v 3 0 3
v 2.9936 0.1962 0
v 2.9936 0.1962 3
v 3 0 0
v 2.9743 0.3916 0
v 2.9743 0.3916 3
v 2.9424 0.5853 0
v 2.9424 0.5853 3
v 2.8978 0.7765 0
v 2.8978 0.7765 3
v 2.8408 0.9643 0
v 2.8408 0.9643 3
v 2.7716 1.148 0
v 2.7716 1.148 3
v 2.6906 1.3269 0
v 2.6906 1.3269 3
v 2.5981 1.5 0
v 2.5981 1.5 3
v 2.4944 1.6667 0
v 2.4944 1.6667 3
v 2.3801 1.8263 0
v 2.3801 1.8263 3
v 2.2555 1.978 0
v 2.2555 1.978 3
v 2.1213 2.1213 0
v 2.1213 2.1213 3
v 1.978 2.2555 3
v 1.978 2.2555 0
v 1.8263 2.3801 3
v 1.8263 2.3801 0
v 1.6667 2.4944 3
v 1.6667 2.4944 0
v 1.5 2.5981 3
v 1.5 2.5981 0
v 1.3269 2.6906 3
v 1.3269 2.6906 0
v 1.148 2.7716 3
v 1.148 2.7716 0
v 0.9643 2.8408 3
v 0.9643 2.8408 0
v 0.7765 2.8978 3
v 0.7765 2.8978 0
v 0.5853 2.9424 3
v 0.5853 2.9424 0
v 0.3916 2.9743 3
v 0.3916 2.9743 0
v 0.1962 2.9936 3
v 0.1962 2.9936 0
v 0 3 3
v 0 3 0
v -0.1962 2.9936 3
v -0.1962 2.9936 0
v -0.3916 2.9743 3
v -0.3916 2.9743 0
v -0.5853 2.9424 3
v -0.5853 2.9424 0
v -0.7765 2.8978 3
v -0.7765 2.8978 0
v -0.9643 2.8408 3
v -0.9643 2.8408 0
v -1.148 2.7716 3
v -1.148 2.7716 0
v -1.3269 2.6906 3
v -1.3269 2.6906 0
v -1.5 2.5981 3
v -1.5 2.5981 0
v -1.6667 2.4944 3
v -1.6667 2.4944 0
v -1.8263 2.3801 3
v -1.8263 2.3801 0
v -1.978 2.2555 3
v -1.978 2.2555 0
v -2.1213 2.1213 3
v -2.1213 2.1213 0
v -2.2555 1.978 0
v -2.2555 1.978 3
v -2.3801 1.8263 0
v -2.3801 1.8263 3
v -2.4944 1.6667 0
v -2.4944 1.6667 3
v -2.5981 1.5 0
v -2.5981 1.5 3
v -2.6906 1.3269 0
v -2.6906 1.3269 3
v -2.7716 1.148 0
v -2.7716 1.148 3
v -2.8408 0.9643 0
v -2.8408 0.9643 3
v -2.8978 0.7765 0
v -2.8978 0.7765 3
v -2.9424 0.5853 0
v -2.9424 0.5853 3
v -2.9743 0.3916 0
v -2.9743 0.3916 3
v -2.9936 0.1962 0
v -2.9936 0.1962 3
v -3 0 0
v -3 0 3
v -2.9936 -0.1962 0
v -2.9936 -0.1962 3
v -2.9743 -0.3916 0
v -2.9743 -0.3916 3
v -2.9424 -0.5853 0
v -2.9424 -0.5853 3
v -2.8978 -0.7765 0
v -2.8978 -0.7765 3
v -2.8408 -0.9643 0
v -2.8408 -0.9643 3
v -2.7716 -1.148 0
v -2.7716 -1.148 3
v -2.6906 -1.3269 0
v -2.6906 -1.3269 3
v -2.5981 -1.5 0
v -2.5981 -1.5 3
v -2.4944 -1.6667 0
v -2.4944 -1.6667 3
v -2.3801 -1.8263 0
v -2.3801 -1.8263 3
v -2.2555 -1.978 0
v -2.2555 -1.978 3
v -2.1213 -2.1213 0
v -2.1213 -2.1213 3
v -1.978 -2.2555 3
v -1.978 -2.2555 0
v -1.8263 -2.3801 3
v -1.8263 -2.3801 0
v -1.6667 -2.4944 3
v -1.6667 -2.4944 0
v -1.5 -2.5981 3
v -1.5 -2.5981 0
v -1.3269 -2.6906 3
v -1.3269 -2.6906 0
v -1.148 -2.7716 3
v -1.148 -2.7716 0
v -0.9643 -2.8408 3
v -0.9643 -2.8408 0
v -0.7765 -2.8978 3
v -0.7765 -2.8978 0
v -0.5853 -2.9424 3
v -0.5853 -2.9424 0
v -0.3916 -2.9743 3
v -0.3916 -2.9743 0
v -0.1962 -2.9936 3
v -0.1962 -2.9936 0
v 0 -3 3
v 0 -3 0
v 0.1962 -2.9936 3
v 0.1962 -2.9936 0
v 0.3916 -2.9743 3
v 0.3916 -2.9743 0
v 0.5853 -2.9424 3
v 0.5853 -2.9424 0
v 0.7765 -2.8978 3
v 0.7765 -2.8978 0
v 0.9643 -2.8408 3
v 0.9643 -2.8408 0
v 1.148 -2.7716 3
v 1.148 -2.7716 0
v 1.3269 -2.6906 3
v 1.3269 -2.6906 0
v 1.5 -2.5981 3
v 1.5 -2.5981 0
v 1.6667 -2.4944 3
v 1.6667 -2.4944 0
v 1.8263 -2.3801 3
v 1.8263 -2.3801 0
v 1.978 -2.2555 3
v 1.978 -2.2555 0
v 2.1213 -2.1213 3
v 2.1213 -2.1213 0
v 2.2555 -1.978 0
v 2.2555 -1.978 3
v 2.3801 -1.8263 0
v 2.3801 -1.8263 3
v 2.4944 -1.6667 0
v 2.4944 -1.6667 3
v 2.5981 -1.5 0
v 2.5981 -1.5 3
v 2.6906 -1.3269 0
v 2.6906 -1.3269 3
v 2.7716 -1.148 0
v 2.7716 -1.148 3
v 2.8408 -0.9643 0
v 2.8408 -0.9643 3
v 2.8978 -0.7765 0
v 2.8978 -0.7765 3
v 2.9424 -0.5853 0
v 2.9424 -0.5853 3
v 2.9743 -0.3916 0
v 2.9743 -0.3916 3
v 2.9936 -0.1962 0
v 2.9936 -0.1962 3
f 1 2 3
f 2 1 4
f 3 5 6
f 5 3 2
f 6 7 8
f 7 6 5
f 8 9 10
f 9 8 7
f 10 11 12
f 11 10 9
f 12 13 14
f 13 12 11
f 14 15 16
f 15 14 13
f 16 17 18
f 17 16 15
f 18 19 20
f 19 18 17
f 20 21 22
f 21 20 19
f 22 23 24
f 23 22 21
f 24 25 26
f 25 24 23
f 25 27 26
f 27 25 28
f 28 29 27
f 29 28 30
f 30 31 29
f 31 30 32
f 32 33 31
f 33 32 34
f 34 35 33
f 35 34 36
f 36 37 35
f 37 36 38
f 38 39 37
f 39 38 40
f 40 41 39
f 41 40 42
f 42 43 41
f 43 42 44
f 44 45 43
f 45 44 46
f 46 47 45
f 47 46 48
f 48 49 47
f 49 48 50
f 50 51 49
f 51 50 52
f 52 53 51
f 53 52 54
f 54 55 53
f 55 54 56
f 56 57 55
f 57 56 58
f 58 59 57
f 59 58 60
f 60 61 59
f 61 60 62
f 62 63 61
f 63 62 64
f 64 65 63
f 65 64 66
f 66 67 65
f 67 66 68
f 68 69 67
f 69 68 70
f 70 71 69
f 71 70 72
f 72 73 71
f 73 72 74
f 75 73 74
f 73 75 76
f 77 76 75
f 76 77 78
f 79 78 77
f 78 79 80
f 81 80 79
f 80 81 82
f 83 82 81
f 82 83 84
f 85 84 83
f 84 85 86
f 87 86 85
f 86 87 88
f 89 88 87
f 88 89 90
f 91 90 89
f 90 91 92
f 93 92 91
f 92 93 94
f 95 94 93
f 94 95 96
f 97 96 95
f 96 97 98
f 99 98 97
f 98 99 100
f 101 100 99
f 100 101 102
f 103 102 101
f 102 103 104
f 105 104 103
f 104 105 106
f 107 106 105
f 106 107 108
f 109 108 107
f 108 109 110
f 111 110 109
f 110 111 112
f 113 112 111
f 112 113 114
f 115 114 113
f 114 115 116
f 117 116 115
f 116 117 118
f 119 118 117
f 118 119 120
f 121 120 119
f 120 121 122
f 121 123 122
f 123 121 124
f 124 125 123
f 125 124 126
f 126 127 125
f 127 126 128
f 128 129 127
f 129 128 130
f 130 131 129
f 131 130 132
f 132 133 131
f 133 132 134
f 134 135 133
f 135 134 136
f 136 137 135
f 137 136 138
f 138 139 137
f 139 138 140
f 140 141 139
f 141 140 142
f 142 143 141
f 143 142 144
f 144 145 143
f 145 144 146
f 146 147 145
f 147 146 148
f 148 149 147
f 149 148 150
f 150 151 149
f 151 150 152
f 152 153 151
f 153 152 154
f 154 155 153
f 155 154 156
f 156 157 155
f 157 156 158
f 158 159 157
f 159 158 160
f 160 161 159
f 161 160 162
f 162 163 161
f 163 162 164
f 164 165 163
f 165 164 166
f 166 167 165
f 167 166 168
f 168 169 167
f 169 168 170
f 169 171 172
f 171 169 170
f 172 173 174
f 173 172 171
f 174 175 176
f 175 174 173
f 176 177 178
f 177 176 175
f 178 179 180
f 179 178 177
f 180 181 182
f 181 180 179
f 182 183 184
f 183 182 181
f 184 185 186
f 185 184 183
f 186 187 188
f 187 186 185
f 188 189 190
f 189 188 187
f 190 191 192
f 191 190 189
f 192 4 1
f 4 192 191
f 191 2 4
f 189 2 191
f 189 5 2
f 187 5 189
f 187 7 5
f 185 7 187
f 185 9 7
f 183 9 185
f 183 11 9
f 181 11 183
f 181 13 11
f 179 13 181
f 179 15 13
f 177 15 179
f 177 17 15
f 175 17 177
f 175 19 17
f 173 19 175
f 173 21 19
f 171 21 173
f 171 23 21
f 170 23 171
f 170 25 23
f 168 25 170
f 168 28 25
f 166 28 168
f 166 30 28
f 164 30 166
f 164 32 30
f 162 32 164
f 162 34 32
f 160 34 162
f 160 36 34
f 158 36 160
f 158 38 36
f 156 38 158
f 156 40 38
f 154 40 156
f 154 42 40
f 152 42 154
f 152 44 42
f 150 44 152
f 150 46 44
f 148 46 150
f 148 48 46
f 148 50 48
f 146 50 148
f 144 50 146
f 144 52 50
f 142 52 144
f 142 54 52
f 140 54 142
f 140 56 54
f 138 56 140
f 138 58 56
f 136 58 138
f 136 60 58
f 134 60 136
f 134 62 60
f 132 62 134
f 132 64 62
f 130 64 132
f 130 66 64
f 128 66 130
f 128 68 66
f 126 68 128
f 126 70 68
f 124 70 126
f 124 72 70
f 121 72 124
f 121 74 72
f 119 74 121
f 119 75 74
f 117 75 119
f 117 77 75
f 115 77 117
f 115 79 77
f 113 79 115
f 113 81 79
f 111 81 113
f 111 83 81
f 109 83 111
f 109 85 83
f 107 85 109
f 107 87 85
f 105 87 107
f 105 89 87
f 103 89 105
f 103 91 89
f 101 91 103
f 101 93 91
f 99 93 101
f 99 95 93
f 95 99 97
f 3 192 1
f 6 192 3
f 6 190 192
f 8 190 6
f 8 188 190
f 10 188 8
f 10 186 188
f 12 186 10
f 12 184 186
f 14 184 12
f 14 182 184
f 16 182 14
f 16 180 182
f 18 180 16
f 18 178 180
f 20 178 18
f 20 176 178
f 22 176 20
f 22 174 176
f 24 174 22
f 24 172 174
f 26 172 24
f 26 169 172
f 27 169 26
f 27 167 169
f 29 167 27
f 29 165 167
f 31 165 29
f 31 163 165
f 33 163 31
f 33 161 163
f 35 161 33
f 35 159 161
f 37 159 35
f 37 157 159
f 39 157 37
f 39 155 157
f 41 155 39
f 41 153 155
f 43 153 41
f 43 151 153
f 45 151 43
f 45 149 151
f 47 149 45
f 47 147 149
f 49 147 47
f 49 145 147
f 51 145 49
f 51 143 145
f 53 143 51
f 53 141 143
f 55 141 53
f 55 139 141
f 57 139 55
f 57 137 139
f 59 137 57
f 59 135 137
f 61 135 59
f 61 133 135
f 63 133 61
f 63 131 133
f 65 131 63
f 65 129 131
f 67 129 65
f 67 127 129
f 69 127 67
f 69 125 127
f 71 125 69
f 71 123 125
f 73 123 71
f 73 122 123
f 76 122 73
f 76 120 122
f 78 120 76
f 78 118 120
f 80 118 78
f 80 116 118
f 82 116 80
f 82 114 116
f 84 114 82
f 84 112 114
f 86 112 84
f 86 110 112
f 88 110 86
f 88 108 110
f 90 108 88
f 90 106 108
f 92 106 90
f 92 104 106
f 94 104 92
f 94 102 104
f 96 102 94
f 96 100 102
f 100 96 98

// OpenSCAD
// file: ../../../conf/printer_config.scad
/**********************************************************************************************************************
 **
 ** conf/printer_config.scad
 **
 ** This file contains the main control variables that determine the size and shape of the printer. Note that in the
 ** actual parts specifications, the constants defined here will only ever be accessed through functions defined in
 ** conf/derived_sizes.scad exclusively to allow for easier adaptation, should the mode of calculation change. 
 **
 ** All sizes in mm. Caution: Little to no cross-checking is implemented. Change values sensibly and one at a time.
 **
 ** This file is NOT to be included by any other file except for conf/derived_sizes.scad.
 **
 **********************************************************************************************************************/

include <constants.scad>

// ===== FRAME RAIL DIMENSIONS ========================================================================================

// The length of the vertical MakerSlide extrusions that make up the rails for the carriages.
FRAME_V_RAIL_HEIGHT = 800;

// The length of the horizontal 20x20 V-Slot extrusions that form the sides of the triangle.
FRAME_H_RAIL_LENGTH = 400;

// ===== WORKING SURFACE (BED) DIMENSIONS =============================================================================

// The thickness of the plate that serves as the heated bed.
BED_THICKNESS = 4;

// The diameter of the plate that serves as the heated bed.
BED_DIAMETER = 300;

// ===== DIMENSIONS OF THE PRINTED FRAME PARTS ========================================================================

// The additional clearance to leave around the MakerSlide extrusion.
MAKERSLIDE_CLEARANCE = 0.25;

// The thickness of the walls outside the extruded parts.
FRAME_PART_WALL_THICKNESS = 3;

// The thickness of the wall that separates the vertical rails from the horizontal extrusions.
FRAME_V_H_RAIL_SEPARATION = 8;

// The depth of the holes that hold the V-Slot extrusions.
FRAME_PART_VSLOT_DEPTH = 30;

// Whether to use a horizontal rail at the base of the printer or not.
FRAME_HORIZONTAL_BASE_RAIL = true;

// The depth of the holes in the foot that hold the MakerSlide extrusions. This is for the foot version that holds
// a horizontal rail.
FRAME_FOOT_RAIL_MAKERSLIDE_DEPTH = 23; 

// The depth of the plate in the foot that the external foot will screw into.
FRAME_FOOT_RAIL_PLATE_DEPTH = 15;

// The thickness of the plate in the foot that the external foot will screw into.
// Hint: Easier to print (although more material is required) if equals to FRAME_FOOT_RAIL_MAKERSLIDE_DEPTH.
FRAME_FOOT_RAIL_PLATE_HEIGHT = 23;

// The depth of the holes in the foot that hold the MakerSlide extrusions. This is for the foot version that does not
// hold a horizontal rail.
FRAME_FOOT_NORAIL_MAKERSLIDE_DEPTH = 17.5; 

// The size of the screws that can be used to mount the foot to the underlying surface.
FRAME_FOOT_PLATE_SCREW_SIZE = M8;

// The clearance to leave around the screw head on all sides.
FRAME_FOOT_PLATE_SCREW_HEAD_CLEARANCE = 0.25;

// The diameter of the adjustable foot that screws into the foot bracket. 
// Note that the polygon is INscribed into this circumference.
FRAME_FOOT_PLATE_DIAMETER = 50;

// The number of sides to the adjustable foot that screws into the foot bracket.
FRAME_FOOT_PLATE_SIDES = 8;

// The thickness of the adjustable foot that screws into the foot bracket.
// Keep this larger than the head of the screw used to fix it, or you will run into trouble.
FRAME_FOOT_PLATE_THICKNESS = 6.5;

// The height of the bracket that holds the motor. WARNING: Increasing this might make it difficult to 
// turn the screws that hold the motor.
FRAME_MOTOR_BRACKET_HEIGHT = 20;

// The height of the bracket that holds the intermediate level with the working surface (print bed).
// Will be A LOT easier to print if equals to 2020 extrusion width + FRAME_PART_WALL_THICKNESS
FRAME_BED_BRACKET_HEIGHT = 23; 

// The depth of the holes in the head that hold the MakerSlide extrusions.
FRAME_HEAD_MAKERSLIDE_DEPTH = 35; 

// The clearance between the tensioner / bracket and its guide blocks on either side.
FRAME_HEAD_GUIDE_CLEARANCE = 0.5;

// ===== ENCLOSURE DIMENSIONS =========================================================================================

// The material thickness of the solid (back and side) enclosure walls.
ENCLOSURE_SOLID_THICKNESS = 4;

// The thickness of the insulation layer between the enclosure walls and the brackets they are mounted to.
ENCLOSURE_INSULATION_THICKNESS = 2;

// The gap between the horizontal extrusions and the enclosure side walls.
ENCLOSURE_SIDE_GAP = 40;

// The factor used to round down the enclosure plate widths.
ENCLOSURE_ROUND_DOWN_TO = 1;

// The thickness of the brackets that hold the outer enclosure walls.
ENCLOSURE_BRACKET_THICKNESS = 6;

// The width of the brackets that hold the outer enclosure walls, excluding the parts that bolt on to the 
// horizontal rails.
ENCLOSURE_BRACKET_WIDTH = 50;

// The distance of the two screw holes and nut recesses in the brackets.
ENCLOSURE_BRACKET_SCREW_DISTANCE = 20;

// ===== CARRIAGE DIMENSIONS ==========================================================================================

// The thickness of the carriage base plate. A thicker plate will make the carriage stiffer, but cost more
// material to print and take away space from the working area.
CARRIAGE_PLATE_THICKNESS = 6;

// The width of the border around the holes in the carriage base plate that hold the V-Wheels. 
CARRIAGE_PLATE_BORDER_WIDTH = 8;

// The upward angle of the ball holder on the carriage.
CARRIAGE_BALL_HOLDER_ANGLE = 10;

// ===== ARM DIMENSIONS AND PARAMETERS ================================================================================

// The distance between the rods that hold the effector.
ROD_DISTANCE = 65;

// The outer diameter of the rods.
ROD_OUTER_DIAMETER = 8;

// The inner diameter of the rods. Set to 0 if the rods are not hollow.
ROD_INNER_DIAMETER = 0;

// The additional clearance to leave between the rod and the holder.
ROD_CLEARANCE = 0.25;

// The thickness of the outer wall around the rod.
ROD_HOLDER_WALL_THICKNESS = 2.2;

// The depth of the insets that hold the rods.
ROD_HOLDER_DEPTH = 10;

// The size of the text on the outside of the rod holders.
ROD_HOLDER_TEXT_SIZE = 9;

// The depth of the text on the outside of the rod holders.
ROD_HOLDER_TEXT_DEPTH = 0.5;

// The minimum angle of the arms.
ROD_MIN_ANGLE = 18;

// The factor used to round up the rod length.
ROD_ROUND_UP_TO = 5;

// The thickness of the magnet holder arms.
MAGNET_HOLDER_THICKNESS = 5;

// The additional clearance to leave around the magnet holder pin.
MAGNET_CLEARANCE = 0.025;

// ===== IR SENSOR DIMENSIONS AND PARAMETERS ==========================================================================

// The additional clearance to leave around the PCB.
IR_SENSOR_PCB_CLEARANCE = 0.2;

// The additional clearance to leave around the magnets.
IR_SENSOR_MAGNET_CLEARANCE = 0.2;

// ===== EFFECTOR DIMENSIONS AND PARAMETERS ===========================================================================

// The additional distance between the magnets on the effector (not the rod distance - the other one :-)).
// This value is added to the minimum distance determined by the magnet size and wall thickness.
EFFECTOR_BALL_ADDITIONAL_DISTANCE = 15;

// The thickness of the effector plate.
EFFECTOR_THICKNESS = 6;

// ===== OTHER DIMENSIONS AND PARAMETERS ==============================================================================

// The range by which the vertical belt tensioner can be adjusted.
TENSIONER_RANGE = 15;
// file: ../../../conf/constants.scad
/**********************************************************************************************************************
 **
 ** conf/constants.scad
 **
 ** This file contains constants and aliases used for the part size definitions.
 **
 **********************************************************************************************************************/

/**
 * The alias names for the rails.
 * A is the "front left" rail, B the "front right" rail, C the back rail.
 * These constants are also used for the sides of the frame and the effector; in this case, side A is the one 
 * opposing rail A.
 */
A = 0;
B = 1;
C = 2;

/**
 * Aliases for metric screw/nut sizes.
 */
M2 = 2;
M3 = 3;
M4 = 4;
M5 = 5;
M8 = 8;

/** 
 * Aliases for NEMA stepper motors.
 */
NEMA14 = 14;
NEMA17 = 17;
NEMA23 = 23;
// main file
/**********************************************************************************************************************
 **
 ** parts/vitamins/mechanic/magnet_cylinder.scad
 **
 ** This file renders a cylindrical magnet for the IR sensor.
 **
 **********************************************************************************************************************/

include <../../../conf/part_sizes.scad>
include <../../../conf/derived_sizes.scad>

$fn = 96;
cylinder(d = escher_ir_sensor_magnet_diameter(),
	     h = escher_ir_sensor_magnet_height());
